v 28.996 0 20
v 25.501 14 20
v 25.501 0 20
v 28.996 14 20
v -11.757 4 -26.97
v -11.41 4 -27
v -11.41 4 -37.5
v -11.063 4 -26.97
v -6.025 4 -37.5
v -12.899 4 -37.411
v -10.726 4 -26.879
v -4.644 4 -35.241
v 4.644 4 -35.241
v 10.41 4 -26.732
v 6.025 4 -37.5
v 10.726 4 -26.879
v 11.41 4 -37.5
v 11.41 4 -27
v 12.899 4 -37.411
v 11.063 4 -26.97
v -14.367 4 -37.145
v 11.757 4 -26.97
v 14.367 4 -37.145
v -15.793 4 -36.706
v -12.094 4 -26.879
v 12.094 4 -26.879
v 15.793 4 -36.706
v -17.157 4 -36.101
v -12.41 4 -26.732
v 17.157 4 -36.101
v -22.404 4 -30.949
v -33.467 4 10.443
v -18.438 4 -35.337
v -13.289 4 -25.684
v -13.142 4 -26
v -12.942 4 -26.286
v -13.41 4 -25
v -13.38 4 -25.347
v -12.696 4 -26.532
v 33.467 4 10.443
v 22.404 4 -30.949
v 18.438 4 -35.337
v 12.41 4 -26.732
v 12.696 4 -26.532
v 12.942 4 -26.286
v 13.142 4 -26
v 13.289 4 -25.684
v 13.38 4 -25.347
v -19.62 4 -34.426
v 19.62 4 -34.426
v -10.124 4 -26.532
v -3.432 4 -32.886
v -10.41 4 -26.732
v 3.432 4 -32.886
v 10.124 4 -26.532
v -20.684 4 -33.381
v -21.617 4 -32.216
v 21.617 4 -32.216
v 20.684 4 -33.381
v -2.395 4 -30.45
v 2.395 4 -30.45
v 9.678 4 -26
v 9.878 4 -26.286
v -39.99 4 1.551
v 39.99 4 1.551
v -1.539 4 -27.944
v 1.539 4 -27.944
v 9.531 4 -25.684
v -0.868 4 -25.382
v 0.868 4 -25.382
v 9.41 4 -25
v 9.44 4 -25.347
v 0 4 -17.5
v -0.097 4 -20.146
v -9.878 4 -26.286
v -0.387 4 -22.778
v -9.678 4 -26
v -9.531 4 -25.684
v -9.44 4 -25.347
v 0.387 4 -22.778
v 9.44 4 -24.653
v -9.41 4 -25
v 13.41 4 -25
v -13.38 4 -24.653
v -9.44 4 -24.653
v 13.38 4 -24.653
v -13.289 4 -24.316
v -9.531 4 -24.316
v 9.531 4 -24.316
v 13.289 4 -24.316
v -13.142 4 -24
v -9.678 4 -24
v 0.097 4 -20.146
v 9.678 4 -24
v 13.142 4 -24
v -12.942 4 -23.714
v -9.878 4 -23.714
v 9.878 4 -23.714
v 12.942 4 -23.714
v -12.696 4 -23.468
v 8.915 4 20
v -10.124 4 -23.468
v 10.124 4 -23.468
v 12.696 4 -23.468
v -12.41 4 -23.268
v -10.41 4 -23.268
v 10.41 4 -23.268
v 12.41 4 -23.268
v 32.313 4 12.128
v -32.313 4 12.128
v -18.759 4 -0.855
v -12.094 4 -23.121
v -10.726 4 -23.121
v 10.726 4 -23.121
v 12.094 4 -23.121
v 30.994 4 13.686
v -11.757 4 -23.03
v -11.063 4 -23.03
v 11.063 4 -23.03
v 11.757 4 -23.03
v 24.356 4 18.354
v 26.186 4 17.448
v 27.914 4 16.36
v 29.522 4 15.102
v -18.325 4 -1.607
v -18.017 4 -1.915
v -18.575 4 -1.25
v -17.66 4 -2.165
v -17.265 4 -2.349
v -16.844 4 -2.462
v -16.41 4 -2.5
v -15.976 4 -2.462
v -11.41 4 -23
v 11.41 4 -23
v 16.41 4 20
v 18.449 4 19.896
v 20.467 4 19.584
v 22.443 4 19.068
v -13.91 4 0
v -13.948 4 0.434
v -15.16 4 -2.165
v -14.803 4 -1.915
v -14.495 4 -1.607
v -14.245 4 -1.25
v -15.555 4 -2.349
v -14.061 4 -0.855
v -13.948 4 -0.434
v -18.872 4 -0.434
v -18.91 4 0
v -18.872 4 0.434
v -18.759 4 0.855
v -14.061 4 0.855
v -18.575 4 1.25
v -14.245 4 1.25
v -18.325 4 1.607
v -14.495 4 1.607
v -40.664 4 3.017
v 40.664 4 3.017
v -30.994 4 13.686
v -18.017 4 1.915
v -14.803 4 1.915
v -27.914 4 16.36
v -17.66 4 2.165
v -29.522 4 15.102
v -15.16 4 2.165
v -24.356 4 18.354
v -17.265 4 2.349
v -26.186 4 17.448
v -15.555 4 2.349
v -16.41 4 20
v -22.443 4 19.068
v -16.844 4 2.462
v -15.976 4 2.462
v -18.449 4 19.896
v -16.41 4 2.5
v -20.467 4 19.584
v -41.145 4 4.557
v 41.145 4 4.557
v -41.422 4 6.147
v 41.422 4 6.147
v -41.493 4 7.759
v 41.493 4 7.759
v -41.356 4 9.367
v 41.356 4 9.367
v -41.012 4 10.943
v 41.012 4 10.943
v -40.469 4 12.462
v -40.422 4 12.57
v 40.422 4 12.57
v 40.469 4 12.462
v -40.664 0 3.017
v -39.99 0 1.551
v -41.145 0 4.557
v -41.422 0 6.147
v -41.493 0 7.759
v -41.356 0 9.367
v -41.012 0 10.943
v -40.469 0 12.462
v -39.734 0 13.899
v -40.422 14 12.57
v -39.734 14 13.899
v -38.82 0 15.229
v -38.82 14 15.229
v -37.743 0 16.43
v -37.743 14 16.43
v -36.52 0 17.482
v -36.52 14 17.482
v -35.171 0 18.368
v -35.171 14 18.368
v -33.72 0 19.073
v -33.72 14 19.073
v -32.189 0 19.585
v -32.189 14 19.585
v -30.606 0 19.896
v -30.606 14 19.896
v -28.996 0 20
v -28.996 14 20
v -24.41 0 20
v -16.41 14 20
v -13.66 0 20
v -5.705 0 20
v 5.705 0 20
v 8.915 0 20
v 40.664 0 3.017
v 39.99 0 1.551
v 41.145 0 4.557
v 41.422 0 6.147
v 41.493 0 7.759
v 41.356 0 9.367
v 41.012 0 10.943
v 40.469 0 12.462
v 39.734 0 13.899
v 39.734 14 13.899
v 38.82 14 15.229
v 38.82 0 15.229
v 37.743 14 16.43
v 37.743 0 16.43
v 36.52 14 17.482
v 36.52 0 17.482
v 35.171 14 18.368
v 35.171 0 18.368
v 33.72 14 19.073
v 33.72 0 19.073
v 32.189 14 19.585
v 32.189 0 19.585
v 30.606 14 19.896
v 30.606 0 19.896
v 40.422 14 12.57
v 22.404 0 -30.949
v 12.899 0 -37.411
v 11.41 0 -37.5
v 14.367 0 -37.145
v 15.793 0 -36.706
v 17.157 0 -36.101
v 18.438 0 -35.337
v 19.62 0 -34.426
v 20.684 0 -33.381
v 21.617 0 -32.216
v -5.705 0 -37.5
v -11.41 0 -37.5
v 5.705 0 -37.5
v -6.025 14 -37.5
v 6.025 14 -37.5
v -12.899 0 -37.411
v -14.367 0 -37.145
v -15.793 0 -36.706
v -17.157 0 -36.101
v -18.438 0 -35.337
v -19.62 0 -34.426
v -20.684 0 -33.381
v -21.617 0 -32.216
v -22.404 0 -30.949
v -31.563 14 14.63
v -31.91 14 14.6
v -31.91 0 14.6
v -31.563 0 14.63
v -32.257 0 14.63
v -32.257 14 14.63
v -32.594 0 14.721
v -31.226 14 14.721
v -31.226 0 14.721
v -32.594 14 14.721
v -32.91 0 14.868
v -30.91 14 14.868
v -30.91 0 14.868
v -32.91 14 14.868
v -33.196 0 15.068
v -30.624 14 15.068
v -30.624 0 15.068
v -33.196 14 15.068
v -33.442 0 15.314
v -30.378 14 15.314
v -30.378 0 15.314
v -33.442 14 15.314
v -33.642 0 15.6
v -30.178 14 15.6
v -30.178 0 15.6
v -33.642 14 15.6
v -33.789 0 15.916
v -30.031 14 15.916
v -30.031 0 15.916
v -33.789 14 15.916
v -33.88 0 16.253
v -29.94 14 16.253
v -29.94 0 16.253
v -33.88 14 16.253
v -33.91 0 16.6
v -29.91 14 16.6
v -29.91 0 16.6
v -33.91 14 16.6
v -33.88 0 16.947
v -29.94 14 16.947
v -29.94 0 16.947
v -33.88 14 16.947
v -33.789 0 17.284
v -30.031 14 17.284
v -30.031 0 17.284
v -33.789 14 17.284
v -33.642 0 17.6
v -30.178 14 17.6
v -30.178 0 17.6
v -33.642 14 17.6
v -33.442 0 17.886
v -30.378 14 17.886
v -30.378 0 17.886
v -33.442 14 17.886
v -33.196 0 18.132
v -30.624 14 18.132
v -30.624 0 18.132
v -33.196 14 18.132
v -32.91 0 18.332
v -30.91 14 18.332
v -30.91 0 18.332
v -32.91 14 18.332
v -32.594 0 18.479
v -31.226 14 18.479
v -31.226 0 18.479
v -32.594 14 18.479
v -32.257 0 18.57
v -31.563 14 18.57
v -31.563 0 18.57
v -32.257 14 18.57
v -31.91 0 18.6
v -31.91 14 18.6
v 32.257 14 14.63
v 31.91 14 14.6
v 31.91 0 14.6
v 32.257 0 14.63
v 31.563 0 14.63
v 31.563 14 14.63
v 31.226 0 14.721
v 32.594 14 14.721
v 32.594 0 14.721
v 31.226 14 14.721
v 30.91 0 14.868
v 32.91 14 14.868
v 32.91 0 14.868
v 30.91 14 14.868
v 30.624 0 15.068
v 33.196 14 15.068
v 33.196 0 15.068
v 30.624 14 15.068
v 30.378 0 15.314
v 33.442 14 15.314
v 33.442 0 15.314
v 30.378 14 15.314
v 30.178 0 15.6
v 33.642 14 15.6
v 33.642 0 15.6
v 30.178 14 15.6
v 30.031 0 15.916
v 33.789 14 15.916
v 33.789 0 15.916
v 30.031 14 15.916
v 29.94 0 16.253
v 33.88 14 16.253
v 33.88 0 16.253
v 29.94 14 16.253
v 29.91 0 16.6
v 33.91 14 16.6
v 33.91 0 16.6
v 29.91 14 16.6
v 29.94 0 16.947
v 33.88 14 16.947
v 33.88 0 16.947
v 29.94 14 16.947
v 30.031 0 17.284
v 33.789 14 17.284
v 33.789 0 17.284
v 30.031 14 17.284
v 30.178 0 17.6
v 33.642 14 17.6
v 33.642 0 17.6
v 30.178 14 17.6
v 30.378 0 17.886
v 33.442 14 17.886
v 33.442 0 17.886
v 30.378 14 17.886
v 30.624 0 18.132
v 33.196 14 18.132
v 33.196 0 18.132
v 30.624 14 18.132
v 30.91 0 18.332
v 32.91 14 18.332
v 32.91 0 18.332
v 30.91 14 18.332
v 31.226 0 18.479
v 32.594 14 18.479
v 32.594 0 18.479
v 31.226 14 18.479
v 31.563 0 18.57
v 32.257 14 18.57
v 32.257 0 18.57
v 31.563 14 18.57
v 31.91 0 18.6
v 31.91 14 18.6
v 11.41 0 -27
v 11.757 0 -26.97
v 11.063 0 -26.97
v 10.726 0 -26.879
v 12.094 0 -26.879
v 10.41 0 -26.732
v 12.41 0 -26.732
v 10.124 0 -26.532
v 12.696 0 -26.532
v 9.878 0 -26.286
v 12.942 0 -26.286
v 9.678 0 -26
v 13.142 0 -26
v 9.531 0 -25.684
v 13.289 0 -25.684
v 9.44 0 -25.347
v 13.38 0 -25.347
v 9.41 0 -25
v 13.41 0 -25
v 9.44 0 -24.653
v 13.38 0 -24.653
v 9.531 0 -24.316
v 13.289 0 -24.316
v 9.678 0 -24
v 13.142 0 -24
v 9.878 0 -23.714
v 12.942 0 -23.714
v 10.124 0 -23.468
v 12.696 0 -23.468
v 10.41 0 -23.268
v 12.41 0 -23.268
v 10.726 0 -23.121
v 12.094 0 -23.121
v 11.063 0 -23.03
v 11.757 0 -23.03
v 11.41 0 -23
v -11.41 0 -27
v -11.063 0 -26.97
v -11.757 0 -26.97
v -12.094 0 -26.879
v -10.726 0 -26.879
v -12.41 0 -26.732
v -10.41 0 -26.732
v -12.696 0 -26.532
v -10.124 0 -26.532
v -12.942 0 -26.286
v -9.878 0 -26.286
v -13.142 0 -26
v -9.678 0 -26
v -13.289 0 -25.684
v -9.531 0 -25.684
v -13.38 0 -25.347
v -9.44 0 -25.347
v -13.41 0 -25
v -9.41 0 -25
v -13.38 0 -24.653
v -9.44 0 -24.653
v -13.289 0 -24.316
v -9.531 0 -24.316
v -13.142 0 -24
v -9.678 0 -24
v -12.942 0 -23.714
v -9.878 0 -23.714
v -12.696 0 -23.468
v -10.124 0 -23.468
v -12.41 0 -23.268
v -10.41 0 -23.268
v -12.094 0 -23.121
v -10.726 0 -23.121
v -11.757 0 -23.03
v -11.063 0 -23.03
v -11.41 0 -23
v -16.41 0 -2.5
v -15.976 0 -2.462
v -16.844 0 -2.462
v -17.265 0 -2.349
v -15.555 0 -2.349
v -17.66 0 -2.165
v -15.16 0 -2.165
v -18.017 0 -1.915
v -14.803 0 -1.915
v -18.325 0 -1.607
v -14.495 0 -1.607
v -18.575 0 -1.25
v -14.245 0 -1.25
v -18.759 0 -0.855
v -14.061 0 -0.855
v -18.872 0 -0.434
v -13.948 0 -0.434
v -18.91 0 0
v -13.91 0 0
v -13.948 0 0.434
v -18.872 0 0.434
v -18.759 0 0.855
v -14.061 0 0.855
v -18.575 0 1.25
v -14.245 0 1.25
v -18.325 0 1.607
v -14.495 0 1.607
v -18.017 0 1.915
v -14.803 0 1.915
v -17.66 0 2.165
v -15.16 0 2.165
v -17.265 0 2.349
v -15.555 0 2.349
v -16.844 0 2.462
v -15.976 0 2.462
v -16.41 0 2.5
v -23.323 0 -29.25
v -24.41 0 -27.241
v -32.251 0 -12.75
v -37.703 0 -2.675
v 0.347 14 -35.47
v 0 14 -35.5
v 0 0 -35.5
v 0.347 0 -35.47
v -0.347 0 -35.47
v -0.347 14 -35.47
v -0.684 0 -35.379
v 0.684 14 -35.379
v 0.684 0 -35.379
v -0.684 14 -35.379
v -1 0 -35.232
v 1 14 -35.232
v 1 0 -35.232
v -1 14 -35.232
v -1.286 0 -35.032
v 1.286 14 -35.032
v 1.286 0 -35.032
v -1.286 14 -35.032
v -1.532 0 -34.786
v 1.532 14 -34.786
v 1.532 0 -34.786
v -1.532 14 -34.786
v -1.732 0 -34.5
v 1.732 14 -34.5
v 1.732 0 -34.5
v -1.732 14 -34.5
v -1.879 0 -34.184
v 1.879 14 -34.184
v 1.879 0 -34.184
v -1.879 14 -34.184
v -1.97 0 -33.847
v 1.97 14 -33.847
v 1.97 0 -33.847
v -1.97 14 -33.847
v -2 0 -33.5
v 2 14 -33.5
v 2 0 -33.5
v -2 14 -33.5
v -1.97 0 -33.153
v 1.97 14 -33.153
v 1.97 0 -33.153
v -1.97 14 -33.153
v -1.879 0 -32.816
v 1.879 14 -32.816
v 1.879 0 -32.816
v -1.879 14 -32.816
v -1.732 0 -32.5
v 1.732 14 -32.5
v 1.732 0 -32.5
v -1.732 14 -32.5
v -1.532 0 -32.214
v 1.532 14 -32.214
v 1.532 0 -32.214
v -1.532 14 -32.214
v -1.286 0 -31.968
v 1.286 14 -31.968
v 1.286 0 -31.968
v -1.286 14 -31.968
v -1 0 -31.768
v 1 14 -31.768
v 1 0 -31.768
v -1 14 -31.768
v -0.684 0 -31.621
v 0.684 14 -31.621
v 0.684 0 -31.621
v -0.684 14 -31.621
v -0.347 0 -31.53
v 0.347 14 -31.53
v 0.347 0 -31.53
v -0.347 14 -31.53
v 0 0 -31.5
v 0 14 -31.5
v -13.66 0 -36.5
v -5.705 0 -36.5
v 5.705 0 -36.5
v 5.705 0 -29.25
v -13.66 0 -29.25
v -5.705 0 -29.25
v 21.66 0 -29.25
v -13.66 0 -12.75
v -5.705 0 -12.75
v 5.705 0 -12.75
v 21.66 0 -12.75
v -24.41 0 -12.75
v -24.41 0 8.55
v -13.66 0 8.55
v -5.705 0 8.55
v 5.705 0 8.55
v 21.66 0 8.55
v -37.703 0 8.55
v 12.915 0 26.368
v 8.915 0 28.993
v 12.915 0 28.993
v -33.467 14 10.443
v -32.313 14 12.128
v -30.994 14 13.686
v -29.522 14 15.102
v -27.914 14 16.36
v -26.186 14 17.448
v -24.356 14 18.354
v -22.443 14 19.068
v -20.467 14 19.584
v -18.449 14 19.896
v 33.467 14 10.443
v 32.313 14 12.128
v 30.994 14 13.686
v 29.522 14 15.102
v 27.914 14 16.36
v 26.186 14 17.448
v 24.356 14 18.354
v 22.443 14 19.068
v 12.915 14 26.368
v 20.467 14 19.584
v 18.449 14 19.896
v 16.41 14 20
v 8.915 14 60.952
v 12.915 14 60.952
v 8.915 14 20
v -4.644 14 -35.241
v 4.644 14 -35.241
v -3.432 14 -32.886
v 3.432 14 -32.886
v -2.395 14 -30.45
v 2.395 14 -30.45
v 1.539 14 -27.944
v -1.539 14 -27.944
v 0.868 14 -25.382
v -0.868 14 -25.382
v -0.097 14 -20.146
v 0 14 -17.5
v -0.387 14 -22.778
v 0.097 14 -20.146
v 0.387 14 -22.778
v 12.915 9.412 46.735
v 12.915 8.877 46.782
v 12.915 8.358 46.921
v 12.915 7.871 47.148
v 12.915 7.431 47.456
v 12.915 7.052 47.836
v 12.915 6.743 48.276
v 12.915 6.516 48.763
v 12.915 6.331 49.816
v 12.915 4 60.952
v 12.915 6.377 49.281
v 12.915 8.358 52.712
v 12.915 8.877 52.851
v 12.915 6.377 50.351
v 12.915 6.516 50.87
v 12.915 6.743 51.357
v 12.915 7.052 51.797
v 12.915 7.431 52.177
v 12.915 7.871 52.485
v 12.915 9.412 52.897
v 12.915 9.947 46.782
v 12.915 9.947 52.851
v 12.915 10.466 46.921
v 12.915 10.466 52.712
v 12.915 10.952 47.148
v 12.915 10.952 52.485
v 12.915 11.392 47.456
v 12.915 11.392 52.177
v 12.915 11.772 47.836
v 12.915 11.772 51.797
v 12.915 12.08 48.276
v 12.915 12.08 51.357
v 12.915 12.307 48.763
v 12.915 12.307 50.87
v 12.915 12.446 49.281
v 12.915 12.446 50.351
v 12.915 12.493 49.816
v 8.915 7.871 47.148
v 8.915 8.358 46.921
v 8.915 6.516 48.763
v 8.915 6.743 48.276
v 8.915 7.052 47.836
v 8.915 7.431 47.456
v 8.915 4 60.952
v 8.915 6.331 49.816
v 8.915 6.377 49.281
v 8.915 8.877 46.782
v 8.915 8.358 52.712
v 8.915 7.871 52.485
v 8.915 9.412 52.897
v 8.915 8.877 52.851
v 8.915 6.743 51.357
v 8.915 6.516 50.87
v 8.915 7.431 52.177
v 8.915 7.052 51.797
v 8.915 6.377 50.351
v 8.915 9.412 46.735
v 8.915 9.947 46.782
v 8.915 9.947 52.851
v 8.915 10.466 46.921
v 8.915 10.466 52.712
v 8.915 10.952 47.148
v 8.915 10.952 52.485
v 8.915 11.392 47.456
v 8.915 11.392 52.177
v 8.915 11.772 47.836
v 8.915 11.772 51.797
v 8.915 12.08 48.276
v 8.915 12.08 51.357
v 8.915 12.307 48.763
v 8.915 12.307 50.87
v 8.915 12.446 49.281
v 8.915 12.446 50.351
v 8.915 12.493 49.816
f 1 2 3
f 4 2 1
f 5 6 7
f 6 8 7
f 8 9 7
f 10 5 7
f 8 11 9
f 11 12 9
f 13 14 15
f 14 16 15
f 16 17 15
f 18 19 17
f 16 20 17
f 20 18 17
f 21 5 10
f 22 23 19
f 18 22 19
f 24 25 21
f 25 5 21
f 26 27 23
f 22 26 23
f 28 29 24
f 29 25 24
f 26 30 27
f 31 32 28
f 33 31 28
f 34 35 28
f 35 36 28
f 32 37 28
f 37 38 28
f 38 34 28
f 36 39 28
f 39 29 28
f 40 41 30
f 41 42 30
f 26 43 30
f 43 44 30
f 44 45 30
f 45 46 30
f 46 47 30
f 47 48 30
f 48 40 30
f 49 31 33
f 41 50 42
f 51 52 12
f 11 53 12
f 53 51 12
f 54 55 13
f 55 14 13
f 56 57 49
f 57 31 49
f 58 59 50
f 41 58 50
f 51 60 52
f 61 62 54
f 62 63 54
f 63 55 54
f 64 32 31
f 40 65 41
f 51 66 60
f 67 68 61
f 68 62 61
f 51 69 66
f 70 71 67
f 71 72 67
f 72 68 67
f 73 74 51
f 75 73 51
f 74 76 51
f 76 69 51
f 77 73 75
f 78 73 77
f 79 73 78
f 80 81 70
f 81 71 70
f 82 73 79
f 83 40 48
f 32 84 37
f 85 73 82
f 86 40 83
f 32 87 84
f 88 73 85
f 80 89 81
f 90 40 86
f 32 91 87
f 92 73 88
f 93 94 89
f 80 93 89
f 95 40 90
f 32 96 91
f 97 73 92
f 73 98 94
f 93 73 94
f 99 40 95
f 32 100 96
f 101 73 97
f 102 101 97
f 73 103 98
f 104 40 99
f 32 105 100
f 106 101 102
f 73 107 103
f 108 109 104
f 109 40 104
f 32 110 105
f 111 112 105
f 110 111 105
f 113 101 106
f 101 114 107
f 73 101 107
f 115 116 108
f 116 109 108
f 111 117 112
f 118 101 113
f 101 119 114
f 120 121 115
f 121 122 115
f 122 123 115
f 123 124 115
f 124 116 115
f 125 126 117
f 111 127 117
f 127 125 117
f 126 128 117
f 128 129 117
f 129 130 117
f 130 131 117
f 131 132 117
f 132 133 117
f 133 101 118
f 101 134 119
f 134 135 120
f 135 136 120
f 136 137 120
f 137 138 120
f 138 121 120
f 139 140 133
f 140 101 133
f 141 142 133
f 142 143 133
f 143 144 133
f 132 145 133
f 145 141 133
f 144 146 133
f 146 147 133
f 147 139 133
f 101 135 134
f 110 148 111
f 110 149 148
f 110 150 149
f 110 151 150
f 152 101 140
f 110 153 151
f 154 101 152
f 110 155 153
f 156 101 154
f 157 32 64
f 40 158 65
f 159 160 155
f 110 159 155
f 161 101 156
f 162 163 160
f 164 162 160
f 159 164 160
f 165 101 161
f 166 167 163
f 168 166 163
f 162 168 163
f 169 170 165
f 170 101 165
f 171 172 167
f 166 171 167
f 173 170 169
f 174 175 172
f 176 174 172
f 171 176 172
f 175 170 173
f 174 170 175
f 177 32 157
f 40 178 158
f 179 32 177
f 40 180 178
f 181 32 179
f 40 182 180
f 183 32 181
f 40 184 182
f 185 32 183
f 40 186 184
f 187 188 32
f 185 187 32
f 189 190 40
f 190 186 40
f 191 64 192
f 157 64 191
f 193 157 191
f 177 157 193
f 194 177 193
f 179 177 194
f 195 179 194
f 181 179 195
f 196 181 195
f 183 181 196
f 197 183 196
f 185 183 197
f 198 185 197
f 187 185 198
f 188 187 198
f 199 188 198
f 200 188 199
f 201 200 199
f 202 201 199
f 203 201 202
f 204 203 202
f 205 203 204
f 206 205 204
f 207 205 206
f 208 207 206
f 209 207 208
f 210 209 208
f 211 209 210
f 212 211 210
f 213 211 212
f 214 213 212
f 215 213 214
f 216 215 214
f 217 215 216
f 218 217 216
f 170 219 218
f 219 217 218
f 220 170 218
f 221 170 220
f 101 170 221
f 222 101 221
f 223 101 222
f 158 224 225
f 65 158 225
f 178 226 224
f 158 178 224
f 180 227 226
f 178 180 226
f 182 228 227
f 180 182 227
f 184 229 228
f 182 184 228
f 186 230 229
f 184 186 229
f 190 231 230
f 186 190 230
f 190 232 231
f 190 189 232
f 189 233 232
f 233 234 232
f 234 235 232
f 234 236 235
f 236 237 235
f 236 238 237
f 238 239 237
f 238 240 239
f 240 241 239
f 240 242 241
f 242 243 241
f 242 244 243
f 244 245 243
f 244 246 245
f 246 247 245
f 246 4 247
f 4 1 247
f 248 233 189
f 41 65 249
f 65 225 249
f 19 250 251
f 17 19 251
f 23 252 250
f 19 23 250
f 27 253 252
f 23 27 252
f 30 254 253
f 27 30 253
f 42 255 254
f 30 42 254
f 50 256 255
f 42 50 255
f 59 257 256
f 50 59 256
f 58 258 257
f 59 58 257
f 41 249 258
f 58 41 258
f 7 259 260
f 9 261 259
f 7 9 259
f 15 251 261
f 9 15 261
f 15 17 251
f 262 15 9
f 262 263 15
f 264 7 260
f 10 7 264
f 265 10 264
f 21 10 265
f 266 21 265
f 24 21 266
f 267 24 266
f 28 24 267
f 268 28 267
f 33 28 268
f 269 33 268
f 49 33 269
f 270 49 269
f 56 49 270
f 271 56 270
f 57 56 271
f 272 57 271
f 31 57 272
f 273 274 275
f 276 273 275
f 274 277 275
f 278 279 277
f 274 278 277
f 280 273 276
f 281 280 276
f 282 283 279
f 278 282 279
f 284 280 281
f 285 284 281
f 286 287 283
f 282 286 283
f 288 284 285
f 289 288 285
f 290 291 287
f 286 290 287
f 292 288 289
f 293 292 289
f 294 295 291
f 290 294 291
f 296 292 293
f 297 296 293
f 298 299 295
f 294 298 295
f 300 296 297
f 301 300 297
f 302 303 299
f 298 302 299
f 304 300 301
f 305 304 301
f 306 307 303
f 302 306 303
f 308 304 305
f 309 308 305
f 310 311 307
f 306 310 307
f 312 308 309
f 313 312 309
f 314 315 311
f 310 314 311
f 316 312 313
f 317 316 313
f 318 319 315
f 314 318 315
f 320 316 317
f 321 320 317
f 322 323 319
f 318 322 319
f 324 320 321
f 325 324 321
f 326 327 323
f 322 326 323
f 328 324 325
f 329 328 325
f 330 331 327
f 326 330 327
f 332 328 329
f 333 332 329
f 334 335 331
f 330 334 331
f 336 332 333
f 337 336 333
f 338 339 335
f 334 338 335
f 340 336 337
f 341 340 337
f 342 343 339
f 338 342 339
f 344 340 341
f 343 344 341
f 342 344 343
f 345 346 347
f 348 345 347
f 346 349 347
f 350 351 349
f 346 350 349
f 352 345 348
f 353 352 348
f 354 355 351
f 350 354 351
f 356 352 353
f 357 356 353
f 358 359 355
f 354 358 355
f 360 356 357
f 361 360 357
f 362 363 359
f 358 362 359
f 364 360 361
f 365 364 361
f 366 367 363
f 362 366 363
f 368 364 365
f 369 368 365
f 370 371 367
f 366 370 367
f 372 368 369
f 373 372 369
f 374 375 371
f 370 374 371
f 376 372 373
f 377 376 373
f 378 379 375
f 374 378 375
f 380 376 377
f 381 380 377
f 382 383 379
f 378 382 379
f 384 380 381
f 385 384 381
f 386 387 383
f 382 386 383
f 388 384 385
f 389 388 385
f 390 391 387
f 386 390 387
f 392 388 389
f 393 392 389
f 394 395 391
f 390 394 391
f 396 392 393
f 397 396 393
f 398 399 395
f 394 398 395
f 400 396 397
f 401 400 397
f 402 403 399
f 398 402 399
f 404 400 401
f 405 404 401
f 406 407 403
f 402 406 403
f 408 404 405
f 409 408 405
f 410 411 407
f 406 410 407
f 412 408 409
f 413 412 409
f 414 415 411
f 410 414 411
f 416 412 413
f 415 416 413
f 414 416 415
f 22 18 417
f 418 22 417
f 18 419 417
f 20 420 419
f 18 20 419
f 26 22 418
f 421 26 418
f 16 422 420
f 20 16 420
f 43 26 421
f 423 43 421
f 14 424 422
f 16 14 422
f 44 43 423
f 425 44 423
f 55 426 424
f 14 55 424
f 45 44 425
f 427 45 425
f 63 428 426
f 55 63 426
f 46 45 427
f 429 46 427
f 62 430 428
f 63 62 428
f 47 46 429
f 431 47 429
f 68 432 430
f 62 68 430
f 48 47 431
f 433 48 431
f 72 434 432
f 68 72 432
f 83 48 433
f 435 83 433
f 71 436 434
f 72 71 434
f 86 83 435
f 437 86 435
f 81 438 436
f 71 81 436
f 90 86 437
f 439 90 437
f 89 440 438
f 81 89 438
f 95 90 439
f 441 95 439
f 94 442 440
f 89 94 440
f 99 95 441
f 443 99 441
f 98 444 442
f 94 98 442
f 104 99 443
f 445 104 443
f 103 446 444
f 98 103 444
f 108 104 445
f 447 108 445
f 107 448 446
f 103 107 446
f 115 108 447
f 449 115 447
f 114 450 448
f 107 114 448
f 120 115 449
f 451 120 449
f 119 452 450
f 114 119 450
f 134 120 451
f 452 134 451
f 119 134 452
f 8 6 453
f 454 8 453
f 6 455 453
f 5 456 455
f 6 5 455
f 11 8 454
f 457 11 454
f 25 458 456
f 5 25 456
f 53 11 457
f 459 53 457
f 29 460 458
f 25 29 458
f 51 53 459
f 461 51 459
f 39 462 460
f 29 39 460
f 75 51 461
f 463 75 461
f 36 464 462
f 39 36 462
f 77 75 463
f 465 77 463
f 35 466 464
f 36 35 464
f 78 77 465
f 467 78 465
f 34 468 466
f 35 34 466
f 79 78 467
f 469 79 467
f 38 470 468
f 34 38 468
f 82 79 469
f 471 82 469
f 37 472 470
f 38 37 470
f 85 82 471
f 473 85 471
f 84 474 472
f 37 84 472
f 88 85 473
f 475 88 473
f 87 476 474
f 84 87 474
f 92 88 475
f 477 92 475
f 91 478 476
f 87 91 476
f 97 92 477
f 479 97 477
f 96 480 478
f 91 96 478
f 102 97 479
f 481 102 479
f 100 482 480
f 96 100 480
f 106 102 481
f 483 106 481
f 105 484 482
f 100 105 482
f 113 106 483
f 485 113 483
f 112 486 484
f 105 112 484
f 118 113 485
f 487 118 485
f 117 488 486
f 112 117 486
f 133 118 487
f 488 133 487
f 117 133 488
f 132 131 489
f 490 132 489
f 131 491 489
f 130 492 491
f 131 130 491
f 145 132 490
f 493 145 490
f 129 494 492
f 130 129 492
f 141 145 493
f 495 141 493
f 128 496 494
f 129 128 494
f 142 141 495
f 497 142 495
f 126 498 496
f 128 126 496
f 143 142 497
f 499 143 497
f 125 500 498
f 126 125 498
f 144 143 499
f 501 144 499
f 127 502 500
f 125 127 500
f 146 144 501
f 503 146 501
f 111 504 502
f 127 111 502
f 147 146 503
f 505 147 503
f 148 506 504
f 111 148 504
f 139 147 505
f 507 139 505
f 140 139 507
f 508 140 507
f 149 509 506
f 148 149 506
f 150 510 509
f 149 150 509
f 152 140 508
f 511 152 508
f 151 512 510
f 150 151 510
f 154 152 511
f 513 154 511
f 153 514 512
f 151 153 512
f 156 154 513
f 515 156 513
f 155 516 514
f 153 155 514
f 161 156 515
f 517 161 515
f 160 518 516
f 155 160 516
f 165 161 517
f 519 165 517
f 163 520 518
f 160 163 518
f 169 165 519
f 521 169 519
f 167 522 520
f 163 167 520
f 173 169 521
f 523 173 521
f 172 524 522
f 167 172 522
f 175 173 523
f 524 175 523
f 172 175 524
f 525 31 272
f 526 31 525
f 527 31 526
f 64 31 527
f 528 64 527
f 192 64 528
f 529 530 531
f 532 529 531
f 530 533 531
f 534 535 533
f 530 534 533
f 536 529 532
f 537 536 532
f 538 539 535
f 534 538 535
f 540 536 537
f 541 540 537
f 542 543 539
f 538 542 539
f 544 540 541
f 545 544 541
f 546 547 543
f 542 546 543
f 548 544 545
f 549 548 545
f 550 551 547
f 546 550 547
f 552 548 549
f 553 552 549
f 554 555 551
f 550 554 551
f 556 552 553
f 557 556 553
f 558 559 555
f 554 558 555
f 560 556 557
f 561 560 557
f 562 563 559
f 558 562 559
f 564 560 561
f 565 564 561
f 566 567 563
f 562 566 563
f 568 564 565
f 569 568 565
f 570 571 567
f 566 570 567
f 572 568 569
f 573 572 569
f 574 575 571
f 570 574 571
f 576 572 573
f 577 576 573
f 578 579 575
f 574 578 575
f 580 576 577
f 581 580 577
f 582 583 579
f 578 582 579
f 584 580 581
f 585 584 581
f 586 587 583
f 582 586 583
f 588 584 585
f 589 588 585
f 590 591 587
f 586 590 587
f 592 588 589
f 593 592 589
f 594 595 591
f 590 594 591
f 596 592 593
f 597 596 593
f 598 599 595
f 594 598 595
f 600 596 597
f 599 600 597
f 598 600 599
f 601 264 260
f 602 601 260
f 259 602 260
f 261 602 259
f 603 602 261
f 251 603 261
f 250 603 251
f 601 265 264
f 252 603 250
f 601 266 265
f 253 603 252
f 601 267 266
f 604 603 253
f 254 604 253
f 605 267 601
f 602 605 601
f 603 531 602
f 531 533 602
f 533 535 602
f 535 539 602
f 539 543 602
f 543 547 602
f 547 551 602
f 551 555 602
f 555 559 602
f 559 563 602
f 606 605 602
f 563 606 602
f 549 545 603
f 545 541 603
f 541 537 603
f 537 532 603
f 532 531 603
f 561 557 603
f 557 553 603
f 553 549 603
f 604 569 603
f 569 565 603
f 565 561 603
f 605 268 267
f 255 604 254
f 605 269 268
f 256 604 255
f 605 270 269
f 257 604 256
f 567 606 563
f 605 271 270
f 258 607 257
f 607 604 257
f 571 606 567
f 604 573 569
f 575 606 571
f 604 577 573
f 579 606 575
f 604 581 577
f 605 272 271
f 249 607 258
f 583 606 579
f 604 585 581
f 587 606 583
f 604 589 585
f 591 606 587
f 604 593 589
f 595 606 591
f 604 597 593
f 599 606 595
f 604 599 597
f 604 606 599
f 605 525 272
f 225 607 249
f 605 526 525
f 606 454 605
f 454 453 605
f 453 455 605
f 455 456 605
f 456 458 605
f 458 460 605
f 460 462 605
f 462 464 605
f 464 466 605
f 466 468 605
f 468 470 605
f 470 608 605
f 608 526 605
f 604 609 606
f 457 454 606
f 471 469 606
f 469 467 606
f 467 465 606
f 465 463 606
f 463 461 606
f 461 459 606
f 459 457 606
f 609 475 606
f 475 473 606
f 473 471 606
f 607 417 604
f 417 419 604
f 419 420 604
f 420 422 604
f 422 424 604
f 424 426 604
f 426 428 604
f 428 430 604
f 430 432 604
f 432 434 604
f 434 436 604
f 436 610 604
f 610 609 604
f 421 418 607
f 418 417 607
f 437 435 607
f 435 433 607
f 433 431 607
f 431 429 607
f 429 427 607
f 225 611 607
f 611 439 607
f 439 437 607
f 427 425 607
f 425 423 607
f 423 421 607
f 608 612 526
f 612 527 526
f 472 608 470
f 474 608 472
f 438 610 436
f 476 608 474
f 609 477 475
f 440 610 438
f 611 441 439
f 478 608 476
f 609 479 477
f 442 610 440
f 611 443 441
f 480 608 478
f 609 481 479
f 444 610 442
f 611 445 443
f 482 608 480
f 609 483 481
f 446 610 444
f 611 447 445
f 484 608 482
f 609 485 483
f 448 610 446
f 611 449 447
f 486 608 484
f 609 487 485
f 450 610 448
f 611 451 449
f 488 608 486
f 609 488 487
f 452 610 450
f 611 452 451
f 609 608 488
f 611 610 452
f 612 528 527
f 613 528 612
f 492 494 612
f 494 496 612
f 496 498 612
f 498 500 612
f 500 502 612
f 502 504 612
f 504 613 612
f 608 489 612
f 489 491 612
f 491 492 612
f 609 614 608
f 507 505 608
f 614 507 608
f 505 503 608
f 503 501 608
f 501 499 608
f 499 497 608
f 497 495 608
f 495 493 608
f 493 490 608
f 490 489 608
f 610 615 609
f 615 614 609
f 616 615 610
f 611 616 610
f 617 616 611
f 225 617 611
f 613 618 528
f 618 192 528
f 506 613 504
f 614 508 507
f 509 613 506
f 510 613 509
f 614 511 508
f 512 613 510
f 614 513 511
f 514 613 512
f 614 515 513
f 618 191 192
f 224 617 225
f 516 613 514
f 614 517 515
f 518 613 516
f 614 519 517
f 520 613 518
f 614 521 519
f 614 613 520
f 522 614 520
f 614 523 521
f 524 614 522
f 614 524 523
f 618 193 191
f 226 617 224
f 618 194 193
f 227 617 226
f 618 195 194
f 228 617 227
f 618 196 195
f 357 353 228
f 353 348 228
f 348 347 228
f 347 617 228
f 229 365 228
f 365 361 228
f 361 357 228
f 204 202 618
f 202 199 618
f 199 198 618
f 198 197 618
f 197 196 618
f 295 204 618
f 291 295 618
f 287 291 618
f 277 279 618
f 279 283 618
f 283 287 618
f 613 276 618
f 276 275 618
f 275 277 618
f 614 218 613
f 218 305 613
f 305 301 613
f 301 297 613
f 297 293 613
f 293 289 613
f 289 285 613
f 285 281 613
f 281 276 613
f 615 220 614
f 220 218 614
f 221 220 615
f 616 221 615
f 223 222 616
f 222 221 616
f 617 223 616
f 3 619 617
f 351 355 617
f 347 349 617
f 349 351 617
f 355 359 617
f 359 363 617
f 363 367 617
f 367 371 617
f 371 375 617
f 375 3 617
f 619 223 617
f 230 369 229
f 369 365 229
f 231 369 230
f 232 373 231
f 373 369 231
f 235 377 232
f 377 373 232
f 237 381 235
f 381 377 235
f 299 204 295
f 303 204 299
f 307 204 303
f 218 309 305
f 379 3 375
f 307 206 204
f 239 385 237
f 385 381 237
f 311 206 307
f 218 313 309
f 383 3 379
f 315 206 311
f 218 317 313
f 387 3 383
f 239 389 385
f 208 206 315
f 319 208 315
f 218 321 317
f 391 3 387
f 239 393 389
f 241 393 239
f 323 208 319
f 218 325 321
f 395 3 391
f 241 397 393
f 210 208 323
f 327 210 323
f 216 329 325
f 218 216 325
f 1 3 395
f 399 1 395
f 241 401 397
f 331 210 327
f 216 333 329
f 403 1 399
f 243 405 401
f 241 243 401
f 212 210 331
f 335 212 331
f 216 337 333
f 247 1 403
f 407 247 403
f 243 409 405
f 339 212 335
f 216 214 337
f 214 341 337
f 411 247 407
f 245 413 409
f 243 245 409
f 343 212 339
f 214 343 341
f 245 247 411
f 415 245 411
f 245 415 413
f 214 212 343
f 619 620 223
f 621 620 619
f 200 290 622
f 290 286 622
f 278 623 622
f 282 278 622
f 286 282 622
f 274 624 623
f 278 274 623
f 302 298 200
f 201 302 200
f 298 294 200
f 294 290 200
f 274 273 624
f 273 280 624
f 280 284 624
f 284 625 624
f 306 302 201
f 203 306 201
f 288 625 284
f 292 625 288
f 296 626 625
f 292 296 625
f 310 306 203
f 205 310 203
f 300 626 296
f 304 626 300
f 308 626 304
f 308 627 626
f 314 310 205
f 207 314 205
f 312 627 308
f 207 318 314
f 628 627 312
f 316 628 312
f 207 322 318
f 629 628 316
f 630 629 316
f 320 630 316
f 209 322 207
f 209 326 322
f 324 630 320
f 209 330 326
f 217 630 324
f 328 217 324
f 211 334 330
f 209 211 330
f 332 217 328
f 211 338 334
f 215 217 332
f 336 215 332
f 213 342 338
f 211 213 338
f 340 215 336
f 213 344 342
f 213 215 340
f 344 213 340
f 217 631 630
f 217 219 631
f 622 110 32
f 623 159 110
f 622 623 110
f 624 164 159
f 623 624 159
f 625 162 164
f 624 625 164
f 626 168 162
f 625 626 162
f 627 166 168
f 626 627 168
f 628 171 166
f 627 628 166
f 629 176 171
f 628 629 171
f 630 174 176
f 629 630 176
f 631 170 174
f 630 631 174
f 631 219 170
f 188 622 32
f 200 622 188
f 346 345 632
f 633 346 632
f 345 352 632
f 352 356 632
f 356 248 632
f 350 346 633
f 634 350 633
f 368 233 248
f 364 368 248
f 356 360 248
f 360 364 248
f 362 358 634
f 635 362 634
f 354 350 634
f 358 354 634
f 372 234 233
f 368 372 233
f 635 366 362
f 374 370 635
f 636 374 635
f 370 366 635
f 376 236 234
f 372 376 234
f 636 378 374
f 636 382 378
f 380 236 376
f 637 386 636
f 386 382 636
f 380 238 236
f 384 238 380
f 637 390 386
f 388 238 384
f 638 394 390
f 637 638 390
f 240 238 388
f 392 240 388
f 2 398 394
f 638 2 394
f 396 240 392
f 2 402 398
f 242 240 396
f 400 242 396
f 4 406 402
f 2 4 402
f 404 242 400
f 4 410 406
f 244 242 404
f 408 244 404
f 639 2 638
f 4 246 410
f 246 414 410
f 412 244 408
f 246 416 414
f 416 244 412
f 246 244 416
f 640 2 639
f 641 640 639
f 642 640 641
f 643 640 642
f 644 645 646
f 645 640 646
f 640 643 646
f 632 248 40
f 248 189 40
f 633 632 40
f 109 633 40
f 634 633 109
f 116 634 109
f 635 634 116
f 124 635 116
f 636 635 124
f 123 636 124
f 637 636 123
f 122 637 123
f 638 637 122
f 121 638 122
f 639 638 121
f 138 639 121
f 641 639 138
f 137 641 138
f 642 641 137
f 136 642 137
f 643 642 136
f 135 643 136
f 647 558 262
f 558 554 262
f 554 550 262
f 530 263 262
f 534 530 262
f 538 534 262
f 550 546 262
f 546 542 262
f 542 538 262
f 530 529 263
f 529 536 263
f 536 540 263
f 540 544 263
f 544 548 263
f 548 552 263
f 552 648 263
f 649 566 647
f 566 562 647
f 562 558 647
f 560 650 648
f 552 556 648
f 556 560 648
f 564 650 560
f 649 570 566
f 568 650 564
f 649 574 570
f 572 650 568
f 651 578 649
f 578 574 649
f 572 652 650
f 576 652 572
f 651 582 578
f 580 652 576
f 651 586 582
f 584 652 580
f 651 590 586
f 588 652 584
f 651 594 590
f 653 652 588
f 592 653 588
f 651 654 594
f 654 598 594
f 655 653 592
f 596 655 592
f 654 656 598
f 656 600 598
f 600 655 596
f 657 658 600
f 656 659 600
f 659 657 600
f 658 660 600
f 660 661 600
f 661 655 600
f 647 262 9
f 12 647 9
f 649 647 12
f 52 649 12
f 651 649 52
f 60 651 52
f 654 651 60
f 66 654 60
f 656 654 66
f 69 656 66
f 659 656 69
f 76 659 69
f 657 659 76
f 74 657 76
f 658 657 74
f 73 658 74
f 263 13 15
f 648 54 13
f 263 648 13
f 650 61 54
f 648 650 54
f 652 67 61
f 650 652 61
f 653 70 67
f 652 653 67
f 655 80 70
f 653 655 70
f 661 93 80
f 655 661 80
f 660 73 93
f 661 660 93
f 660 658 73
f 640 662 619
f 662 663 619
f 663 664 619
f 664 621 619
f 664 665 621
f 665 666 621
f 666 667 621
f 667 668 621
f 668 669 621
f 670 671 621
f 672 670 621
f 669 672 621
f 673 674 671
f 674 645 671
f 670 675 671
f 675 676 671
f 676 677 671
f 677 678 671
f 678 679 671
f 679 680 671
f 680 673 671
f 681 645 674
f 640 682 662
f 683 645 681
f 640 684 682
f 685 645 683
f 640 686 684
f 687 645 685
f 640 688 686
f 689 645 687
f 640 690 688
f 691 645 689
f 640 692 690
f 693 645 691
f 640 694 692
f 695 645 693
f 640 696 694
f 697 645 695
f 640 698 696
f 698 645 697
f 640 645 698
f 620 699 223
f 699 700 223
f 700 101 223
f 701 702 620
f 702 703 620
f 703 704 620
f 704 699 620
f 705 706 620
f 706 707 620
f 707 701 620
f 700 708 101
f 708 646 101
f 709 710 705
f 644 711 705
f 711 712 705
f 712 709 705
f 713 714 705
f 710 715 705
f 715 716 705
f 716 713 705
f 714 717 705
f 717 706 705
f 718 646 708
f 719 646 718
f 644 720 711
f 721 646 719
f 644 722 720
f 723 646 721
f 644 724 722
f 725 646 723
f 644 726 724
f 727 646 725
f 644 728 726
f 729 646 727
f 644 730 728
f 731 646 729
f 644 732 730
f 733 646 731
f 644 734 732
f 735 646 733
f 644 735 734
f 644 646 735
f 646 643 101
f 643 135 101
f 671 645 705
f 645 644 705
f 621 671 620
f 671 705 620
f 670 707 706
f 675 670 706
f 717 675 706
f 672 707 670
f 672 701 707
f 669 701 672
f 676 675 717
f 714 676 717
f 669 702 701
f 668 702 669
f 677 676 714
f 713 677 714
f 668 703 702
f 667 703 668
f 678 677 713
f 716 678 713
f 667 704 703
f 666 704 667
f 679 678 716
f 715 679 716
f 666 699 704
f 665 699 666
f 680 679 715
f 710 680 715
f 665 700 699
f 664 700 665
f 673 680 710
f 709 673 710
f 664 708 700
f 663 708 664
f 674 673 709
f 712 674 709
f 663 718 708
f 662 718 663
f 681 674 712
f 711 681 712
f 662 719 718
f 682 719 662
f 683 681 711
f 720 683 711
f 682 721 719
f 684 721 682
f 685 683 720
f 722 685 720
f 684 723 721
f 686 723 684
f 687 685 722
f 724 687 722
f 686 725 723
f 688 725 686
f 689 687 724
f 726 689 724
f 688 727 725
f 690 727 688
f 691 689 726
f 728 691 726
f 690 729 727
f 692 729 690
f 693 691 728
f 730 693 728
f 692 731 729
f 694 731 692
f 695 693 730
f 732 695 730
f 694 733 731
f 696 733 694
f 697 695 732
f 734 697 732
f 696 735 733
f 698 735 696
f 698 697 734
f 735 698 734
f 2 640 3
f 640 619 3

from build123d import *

# Parameters (mm, degrees)
SKETCH1_R           = 2.5
SKETCH1_R_2         = 2
BOSS_EXTRUDE1_DEPTH = 4
BOSS_EXTRUDE2_START = 4
SKETCH1_3_R         = 2
BOSS_EXTRUDE2_DEPTH = 10
BOSS_EXTRUDE4_START = 8.9154
SKETCH4_R           = 3.081113055
BOSS_EXTRUDE4_DEPTH = 4
BOSS_EXTRUDE5_DEPTH = 14


with BuildPart() as part:
    # Sketch1 → Boss-Extrude1 (new body)
    with BuildSketch(Plane(origin=(0, 0, 0), x_dir=(1, 0, 0), z_dir=(0, 1, 0))):
        with BuildLine():
            Line((-11.41, 37.5), (11.41, 37.5))
            ThreePointArc((11.41, 37.5), (17.8088531, 35.73800163), (22.403743203, 30.948748641))
            Line((22.403743203, 30.948748641), (39.989594287, -1.551251359))
            ThreePointArc((39.989594287, -1.551251359), (39.733852714, -13.8988531), (28.995851084, -20))
            Line((28.995851084, -20), (-28.995851084, -20))
            ThreePointArc((-28.995851084, -20), (-39.733852714, -13.8988531), (-39.989594287, -1.551251359))
            Line((-39.989594287, -1.551251359), (-22.403743203, 30.948748641))
            ThreePointArc((-22.403743203, 30.948748641), (-17.8088531, 35.73800163), (-11.41, 37.5))
        make_face()
        with Locations((-16.41, 0)):
            Circle(SKETCH1_R, mode=Mode.SUBTRACT)
        with Locations((-11.41, 25)):
            Circle(SKETCH1_R_2, mode=Mode.SUBTRACT)
        with Locations((11.41, 25)):
            Circle(SKETCH1_R_2, mode=Mode.SUBTRACT)
        with Locations((0, 33.5)):
            Circle(SKETCH1_R_2, mode=Mode.SUBTRACT)
        with Locations((31.91, -16.6)):
            Circle(SKETCH1_R_2, mode=Mode.SUBTRACT)
        with Locations((-31.91, -16.6)):
            Circle(SKETCH1_R_2, mode=Mode.SUBTRACT)
    extrude(amount=BOSS_EXTRUDE1_DEPTH)

    # Sketch1_3 → Boss-Extrude2 (add)
    with BuildSketch(Plane(origin=(0, 0, 0), x_dir=(1, 0, 0), z_dir=(0, 1, 0)).offset(BOSS_EXTRUDE2_START)):
        with BuildLine():
            ThreePointArc((-16.41, -20), (-26.18584907, -17.448002034), (-33.466903445, -10.443277496))
            Line((-33.466903445, -10.443277496), (-40.421677434, -12.569565287))
            ThreePointArc((-40.421677434, -12.569565287), (-35.810557017, -17.979016321), (-28.995851084, -20))
            Line((-28.995851084, -20), (-16.41, -20))
        make_face()
        with Locations((-31.91, -16.6)):
            Circle(SKETCH1_3_R, mode=Mode.SUBTRACT)
        with BuildLine():
            ThreePointArc((33.466903445, -10.443277496), (26.18584907, -17.448002034), (16.41, -20))
            Line((16.41, -20), (28.995851084, -20))
            ThreePointArc((28.995851084, -20), (35.810557017, -17.979016321), (40.421677434, -12.569565287))
            Line((40.421677434, -12.569565287), (33.466903445, -10.443277496))
        make_face()
        with Locations((31.91, -16.6)):
            Circle(SKETCH1_3_R, mode=Mode.SUBTRACT)
        with BuildLine():
            Line((6.025107723, 37.5), (-6.025107723, 37.5))
            ThreePointArc((-6.025107723, 37.5), (-1.538984336, 27.943920757), (0, 17.5))
            ThreePointArc((0, 17.5), (1.538984336, 27.943920757), (6.025107723, 37.5))
        make_face()
        with Locations((0, 33.5)):
            Circle(SKETCH1_3_R, mode=Mode.SUBTRACT)
    extrude(amount=BOSS_EXTRUDE2_DEPTH)

    # Sketch4 → Boss-Extrude4 (add)
    with BuildSketch(Plane(origin=(0, 0, 0), x_dir=(0, 0, -1), z_dir=(1, 0, 0)).offset(BOSS_EXTRUDE4_START)):
        Polygon((-20, 0), (-28.99333943, 0), (-60.952260121, 4), (-60.952260121, 14), (-20, 14), align=None)
        with Locations((-49.816366974, 9.411784345)):
            Circle(SKETCH4_R, mode=Mode.SUBTRACT)
    extrude(amount=BOSS_EXTRUDE4_DEPTH)

    # Sketch5 → Boss-Extrude5 (add)
    with BuildSketch(Plane(origin=(0, 14, 0), x_dir=(1, 0, 0), z_dir=(0, 1, 0))):
        Polygon((12.9154, -20), (12.9154, -26.368170387), (25.501140128, -20), align=None)
    extrude(amount=-BOSS_EXTRUDE5_DEPTH)


solid = part.part
